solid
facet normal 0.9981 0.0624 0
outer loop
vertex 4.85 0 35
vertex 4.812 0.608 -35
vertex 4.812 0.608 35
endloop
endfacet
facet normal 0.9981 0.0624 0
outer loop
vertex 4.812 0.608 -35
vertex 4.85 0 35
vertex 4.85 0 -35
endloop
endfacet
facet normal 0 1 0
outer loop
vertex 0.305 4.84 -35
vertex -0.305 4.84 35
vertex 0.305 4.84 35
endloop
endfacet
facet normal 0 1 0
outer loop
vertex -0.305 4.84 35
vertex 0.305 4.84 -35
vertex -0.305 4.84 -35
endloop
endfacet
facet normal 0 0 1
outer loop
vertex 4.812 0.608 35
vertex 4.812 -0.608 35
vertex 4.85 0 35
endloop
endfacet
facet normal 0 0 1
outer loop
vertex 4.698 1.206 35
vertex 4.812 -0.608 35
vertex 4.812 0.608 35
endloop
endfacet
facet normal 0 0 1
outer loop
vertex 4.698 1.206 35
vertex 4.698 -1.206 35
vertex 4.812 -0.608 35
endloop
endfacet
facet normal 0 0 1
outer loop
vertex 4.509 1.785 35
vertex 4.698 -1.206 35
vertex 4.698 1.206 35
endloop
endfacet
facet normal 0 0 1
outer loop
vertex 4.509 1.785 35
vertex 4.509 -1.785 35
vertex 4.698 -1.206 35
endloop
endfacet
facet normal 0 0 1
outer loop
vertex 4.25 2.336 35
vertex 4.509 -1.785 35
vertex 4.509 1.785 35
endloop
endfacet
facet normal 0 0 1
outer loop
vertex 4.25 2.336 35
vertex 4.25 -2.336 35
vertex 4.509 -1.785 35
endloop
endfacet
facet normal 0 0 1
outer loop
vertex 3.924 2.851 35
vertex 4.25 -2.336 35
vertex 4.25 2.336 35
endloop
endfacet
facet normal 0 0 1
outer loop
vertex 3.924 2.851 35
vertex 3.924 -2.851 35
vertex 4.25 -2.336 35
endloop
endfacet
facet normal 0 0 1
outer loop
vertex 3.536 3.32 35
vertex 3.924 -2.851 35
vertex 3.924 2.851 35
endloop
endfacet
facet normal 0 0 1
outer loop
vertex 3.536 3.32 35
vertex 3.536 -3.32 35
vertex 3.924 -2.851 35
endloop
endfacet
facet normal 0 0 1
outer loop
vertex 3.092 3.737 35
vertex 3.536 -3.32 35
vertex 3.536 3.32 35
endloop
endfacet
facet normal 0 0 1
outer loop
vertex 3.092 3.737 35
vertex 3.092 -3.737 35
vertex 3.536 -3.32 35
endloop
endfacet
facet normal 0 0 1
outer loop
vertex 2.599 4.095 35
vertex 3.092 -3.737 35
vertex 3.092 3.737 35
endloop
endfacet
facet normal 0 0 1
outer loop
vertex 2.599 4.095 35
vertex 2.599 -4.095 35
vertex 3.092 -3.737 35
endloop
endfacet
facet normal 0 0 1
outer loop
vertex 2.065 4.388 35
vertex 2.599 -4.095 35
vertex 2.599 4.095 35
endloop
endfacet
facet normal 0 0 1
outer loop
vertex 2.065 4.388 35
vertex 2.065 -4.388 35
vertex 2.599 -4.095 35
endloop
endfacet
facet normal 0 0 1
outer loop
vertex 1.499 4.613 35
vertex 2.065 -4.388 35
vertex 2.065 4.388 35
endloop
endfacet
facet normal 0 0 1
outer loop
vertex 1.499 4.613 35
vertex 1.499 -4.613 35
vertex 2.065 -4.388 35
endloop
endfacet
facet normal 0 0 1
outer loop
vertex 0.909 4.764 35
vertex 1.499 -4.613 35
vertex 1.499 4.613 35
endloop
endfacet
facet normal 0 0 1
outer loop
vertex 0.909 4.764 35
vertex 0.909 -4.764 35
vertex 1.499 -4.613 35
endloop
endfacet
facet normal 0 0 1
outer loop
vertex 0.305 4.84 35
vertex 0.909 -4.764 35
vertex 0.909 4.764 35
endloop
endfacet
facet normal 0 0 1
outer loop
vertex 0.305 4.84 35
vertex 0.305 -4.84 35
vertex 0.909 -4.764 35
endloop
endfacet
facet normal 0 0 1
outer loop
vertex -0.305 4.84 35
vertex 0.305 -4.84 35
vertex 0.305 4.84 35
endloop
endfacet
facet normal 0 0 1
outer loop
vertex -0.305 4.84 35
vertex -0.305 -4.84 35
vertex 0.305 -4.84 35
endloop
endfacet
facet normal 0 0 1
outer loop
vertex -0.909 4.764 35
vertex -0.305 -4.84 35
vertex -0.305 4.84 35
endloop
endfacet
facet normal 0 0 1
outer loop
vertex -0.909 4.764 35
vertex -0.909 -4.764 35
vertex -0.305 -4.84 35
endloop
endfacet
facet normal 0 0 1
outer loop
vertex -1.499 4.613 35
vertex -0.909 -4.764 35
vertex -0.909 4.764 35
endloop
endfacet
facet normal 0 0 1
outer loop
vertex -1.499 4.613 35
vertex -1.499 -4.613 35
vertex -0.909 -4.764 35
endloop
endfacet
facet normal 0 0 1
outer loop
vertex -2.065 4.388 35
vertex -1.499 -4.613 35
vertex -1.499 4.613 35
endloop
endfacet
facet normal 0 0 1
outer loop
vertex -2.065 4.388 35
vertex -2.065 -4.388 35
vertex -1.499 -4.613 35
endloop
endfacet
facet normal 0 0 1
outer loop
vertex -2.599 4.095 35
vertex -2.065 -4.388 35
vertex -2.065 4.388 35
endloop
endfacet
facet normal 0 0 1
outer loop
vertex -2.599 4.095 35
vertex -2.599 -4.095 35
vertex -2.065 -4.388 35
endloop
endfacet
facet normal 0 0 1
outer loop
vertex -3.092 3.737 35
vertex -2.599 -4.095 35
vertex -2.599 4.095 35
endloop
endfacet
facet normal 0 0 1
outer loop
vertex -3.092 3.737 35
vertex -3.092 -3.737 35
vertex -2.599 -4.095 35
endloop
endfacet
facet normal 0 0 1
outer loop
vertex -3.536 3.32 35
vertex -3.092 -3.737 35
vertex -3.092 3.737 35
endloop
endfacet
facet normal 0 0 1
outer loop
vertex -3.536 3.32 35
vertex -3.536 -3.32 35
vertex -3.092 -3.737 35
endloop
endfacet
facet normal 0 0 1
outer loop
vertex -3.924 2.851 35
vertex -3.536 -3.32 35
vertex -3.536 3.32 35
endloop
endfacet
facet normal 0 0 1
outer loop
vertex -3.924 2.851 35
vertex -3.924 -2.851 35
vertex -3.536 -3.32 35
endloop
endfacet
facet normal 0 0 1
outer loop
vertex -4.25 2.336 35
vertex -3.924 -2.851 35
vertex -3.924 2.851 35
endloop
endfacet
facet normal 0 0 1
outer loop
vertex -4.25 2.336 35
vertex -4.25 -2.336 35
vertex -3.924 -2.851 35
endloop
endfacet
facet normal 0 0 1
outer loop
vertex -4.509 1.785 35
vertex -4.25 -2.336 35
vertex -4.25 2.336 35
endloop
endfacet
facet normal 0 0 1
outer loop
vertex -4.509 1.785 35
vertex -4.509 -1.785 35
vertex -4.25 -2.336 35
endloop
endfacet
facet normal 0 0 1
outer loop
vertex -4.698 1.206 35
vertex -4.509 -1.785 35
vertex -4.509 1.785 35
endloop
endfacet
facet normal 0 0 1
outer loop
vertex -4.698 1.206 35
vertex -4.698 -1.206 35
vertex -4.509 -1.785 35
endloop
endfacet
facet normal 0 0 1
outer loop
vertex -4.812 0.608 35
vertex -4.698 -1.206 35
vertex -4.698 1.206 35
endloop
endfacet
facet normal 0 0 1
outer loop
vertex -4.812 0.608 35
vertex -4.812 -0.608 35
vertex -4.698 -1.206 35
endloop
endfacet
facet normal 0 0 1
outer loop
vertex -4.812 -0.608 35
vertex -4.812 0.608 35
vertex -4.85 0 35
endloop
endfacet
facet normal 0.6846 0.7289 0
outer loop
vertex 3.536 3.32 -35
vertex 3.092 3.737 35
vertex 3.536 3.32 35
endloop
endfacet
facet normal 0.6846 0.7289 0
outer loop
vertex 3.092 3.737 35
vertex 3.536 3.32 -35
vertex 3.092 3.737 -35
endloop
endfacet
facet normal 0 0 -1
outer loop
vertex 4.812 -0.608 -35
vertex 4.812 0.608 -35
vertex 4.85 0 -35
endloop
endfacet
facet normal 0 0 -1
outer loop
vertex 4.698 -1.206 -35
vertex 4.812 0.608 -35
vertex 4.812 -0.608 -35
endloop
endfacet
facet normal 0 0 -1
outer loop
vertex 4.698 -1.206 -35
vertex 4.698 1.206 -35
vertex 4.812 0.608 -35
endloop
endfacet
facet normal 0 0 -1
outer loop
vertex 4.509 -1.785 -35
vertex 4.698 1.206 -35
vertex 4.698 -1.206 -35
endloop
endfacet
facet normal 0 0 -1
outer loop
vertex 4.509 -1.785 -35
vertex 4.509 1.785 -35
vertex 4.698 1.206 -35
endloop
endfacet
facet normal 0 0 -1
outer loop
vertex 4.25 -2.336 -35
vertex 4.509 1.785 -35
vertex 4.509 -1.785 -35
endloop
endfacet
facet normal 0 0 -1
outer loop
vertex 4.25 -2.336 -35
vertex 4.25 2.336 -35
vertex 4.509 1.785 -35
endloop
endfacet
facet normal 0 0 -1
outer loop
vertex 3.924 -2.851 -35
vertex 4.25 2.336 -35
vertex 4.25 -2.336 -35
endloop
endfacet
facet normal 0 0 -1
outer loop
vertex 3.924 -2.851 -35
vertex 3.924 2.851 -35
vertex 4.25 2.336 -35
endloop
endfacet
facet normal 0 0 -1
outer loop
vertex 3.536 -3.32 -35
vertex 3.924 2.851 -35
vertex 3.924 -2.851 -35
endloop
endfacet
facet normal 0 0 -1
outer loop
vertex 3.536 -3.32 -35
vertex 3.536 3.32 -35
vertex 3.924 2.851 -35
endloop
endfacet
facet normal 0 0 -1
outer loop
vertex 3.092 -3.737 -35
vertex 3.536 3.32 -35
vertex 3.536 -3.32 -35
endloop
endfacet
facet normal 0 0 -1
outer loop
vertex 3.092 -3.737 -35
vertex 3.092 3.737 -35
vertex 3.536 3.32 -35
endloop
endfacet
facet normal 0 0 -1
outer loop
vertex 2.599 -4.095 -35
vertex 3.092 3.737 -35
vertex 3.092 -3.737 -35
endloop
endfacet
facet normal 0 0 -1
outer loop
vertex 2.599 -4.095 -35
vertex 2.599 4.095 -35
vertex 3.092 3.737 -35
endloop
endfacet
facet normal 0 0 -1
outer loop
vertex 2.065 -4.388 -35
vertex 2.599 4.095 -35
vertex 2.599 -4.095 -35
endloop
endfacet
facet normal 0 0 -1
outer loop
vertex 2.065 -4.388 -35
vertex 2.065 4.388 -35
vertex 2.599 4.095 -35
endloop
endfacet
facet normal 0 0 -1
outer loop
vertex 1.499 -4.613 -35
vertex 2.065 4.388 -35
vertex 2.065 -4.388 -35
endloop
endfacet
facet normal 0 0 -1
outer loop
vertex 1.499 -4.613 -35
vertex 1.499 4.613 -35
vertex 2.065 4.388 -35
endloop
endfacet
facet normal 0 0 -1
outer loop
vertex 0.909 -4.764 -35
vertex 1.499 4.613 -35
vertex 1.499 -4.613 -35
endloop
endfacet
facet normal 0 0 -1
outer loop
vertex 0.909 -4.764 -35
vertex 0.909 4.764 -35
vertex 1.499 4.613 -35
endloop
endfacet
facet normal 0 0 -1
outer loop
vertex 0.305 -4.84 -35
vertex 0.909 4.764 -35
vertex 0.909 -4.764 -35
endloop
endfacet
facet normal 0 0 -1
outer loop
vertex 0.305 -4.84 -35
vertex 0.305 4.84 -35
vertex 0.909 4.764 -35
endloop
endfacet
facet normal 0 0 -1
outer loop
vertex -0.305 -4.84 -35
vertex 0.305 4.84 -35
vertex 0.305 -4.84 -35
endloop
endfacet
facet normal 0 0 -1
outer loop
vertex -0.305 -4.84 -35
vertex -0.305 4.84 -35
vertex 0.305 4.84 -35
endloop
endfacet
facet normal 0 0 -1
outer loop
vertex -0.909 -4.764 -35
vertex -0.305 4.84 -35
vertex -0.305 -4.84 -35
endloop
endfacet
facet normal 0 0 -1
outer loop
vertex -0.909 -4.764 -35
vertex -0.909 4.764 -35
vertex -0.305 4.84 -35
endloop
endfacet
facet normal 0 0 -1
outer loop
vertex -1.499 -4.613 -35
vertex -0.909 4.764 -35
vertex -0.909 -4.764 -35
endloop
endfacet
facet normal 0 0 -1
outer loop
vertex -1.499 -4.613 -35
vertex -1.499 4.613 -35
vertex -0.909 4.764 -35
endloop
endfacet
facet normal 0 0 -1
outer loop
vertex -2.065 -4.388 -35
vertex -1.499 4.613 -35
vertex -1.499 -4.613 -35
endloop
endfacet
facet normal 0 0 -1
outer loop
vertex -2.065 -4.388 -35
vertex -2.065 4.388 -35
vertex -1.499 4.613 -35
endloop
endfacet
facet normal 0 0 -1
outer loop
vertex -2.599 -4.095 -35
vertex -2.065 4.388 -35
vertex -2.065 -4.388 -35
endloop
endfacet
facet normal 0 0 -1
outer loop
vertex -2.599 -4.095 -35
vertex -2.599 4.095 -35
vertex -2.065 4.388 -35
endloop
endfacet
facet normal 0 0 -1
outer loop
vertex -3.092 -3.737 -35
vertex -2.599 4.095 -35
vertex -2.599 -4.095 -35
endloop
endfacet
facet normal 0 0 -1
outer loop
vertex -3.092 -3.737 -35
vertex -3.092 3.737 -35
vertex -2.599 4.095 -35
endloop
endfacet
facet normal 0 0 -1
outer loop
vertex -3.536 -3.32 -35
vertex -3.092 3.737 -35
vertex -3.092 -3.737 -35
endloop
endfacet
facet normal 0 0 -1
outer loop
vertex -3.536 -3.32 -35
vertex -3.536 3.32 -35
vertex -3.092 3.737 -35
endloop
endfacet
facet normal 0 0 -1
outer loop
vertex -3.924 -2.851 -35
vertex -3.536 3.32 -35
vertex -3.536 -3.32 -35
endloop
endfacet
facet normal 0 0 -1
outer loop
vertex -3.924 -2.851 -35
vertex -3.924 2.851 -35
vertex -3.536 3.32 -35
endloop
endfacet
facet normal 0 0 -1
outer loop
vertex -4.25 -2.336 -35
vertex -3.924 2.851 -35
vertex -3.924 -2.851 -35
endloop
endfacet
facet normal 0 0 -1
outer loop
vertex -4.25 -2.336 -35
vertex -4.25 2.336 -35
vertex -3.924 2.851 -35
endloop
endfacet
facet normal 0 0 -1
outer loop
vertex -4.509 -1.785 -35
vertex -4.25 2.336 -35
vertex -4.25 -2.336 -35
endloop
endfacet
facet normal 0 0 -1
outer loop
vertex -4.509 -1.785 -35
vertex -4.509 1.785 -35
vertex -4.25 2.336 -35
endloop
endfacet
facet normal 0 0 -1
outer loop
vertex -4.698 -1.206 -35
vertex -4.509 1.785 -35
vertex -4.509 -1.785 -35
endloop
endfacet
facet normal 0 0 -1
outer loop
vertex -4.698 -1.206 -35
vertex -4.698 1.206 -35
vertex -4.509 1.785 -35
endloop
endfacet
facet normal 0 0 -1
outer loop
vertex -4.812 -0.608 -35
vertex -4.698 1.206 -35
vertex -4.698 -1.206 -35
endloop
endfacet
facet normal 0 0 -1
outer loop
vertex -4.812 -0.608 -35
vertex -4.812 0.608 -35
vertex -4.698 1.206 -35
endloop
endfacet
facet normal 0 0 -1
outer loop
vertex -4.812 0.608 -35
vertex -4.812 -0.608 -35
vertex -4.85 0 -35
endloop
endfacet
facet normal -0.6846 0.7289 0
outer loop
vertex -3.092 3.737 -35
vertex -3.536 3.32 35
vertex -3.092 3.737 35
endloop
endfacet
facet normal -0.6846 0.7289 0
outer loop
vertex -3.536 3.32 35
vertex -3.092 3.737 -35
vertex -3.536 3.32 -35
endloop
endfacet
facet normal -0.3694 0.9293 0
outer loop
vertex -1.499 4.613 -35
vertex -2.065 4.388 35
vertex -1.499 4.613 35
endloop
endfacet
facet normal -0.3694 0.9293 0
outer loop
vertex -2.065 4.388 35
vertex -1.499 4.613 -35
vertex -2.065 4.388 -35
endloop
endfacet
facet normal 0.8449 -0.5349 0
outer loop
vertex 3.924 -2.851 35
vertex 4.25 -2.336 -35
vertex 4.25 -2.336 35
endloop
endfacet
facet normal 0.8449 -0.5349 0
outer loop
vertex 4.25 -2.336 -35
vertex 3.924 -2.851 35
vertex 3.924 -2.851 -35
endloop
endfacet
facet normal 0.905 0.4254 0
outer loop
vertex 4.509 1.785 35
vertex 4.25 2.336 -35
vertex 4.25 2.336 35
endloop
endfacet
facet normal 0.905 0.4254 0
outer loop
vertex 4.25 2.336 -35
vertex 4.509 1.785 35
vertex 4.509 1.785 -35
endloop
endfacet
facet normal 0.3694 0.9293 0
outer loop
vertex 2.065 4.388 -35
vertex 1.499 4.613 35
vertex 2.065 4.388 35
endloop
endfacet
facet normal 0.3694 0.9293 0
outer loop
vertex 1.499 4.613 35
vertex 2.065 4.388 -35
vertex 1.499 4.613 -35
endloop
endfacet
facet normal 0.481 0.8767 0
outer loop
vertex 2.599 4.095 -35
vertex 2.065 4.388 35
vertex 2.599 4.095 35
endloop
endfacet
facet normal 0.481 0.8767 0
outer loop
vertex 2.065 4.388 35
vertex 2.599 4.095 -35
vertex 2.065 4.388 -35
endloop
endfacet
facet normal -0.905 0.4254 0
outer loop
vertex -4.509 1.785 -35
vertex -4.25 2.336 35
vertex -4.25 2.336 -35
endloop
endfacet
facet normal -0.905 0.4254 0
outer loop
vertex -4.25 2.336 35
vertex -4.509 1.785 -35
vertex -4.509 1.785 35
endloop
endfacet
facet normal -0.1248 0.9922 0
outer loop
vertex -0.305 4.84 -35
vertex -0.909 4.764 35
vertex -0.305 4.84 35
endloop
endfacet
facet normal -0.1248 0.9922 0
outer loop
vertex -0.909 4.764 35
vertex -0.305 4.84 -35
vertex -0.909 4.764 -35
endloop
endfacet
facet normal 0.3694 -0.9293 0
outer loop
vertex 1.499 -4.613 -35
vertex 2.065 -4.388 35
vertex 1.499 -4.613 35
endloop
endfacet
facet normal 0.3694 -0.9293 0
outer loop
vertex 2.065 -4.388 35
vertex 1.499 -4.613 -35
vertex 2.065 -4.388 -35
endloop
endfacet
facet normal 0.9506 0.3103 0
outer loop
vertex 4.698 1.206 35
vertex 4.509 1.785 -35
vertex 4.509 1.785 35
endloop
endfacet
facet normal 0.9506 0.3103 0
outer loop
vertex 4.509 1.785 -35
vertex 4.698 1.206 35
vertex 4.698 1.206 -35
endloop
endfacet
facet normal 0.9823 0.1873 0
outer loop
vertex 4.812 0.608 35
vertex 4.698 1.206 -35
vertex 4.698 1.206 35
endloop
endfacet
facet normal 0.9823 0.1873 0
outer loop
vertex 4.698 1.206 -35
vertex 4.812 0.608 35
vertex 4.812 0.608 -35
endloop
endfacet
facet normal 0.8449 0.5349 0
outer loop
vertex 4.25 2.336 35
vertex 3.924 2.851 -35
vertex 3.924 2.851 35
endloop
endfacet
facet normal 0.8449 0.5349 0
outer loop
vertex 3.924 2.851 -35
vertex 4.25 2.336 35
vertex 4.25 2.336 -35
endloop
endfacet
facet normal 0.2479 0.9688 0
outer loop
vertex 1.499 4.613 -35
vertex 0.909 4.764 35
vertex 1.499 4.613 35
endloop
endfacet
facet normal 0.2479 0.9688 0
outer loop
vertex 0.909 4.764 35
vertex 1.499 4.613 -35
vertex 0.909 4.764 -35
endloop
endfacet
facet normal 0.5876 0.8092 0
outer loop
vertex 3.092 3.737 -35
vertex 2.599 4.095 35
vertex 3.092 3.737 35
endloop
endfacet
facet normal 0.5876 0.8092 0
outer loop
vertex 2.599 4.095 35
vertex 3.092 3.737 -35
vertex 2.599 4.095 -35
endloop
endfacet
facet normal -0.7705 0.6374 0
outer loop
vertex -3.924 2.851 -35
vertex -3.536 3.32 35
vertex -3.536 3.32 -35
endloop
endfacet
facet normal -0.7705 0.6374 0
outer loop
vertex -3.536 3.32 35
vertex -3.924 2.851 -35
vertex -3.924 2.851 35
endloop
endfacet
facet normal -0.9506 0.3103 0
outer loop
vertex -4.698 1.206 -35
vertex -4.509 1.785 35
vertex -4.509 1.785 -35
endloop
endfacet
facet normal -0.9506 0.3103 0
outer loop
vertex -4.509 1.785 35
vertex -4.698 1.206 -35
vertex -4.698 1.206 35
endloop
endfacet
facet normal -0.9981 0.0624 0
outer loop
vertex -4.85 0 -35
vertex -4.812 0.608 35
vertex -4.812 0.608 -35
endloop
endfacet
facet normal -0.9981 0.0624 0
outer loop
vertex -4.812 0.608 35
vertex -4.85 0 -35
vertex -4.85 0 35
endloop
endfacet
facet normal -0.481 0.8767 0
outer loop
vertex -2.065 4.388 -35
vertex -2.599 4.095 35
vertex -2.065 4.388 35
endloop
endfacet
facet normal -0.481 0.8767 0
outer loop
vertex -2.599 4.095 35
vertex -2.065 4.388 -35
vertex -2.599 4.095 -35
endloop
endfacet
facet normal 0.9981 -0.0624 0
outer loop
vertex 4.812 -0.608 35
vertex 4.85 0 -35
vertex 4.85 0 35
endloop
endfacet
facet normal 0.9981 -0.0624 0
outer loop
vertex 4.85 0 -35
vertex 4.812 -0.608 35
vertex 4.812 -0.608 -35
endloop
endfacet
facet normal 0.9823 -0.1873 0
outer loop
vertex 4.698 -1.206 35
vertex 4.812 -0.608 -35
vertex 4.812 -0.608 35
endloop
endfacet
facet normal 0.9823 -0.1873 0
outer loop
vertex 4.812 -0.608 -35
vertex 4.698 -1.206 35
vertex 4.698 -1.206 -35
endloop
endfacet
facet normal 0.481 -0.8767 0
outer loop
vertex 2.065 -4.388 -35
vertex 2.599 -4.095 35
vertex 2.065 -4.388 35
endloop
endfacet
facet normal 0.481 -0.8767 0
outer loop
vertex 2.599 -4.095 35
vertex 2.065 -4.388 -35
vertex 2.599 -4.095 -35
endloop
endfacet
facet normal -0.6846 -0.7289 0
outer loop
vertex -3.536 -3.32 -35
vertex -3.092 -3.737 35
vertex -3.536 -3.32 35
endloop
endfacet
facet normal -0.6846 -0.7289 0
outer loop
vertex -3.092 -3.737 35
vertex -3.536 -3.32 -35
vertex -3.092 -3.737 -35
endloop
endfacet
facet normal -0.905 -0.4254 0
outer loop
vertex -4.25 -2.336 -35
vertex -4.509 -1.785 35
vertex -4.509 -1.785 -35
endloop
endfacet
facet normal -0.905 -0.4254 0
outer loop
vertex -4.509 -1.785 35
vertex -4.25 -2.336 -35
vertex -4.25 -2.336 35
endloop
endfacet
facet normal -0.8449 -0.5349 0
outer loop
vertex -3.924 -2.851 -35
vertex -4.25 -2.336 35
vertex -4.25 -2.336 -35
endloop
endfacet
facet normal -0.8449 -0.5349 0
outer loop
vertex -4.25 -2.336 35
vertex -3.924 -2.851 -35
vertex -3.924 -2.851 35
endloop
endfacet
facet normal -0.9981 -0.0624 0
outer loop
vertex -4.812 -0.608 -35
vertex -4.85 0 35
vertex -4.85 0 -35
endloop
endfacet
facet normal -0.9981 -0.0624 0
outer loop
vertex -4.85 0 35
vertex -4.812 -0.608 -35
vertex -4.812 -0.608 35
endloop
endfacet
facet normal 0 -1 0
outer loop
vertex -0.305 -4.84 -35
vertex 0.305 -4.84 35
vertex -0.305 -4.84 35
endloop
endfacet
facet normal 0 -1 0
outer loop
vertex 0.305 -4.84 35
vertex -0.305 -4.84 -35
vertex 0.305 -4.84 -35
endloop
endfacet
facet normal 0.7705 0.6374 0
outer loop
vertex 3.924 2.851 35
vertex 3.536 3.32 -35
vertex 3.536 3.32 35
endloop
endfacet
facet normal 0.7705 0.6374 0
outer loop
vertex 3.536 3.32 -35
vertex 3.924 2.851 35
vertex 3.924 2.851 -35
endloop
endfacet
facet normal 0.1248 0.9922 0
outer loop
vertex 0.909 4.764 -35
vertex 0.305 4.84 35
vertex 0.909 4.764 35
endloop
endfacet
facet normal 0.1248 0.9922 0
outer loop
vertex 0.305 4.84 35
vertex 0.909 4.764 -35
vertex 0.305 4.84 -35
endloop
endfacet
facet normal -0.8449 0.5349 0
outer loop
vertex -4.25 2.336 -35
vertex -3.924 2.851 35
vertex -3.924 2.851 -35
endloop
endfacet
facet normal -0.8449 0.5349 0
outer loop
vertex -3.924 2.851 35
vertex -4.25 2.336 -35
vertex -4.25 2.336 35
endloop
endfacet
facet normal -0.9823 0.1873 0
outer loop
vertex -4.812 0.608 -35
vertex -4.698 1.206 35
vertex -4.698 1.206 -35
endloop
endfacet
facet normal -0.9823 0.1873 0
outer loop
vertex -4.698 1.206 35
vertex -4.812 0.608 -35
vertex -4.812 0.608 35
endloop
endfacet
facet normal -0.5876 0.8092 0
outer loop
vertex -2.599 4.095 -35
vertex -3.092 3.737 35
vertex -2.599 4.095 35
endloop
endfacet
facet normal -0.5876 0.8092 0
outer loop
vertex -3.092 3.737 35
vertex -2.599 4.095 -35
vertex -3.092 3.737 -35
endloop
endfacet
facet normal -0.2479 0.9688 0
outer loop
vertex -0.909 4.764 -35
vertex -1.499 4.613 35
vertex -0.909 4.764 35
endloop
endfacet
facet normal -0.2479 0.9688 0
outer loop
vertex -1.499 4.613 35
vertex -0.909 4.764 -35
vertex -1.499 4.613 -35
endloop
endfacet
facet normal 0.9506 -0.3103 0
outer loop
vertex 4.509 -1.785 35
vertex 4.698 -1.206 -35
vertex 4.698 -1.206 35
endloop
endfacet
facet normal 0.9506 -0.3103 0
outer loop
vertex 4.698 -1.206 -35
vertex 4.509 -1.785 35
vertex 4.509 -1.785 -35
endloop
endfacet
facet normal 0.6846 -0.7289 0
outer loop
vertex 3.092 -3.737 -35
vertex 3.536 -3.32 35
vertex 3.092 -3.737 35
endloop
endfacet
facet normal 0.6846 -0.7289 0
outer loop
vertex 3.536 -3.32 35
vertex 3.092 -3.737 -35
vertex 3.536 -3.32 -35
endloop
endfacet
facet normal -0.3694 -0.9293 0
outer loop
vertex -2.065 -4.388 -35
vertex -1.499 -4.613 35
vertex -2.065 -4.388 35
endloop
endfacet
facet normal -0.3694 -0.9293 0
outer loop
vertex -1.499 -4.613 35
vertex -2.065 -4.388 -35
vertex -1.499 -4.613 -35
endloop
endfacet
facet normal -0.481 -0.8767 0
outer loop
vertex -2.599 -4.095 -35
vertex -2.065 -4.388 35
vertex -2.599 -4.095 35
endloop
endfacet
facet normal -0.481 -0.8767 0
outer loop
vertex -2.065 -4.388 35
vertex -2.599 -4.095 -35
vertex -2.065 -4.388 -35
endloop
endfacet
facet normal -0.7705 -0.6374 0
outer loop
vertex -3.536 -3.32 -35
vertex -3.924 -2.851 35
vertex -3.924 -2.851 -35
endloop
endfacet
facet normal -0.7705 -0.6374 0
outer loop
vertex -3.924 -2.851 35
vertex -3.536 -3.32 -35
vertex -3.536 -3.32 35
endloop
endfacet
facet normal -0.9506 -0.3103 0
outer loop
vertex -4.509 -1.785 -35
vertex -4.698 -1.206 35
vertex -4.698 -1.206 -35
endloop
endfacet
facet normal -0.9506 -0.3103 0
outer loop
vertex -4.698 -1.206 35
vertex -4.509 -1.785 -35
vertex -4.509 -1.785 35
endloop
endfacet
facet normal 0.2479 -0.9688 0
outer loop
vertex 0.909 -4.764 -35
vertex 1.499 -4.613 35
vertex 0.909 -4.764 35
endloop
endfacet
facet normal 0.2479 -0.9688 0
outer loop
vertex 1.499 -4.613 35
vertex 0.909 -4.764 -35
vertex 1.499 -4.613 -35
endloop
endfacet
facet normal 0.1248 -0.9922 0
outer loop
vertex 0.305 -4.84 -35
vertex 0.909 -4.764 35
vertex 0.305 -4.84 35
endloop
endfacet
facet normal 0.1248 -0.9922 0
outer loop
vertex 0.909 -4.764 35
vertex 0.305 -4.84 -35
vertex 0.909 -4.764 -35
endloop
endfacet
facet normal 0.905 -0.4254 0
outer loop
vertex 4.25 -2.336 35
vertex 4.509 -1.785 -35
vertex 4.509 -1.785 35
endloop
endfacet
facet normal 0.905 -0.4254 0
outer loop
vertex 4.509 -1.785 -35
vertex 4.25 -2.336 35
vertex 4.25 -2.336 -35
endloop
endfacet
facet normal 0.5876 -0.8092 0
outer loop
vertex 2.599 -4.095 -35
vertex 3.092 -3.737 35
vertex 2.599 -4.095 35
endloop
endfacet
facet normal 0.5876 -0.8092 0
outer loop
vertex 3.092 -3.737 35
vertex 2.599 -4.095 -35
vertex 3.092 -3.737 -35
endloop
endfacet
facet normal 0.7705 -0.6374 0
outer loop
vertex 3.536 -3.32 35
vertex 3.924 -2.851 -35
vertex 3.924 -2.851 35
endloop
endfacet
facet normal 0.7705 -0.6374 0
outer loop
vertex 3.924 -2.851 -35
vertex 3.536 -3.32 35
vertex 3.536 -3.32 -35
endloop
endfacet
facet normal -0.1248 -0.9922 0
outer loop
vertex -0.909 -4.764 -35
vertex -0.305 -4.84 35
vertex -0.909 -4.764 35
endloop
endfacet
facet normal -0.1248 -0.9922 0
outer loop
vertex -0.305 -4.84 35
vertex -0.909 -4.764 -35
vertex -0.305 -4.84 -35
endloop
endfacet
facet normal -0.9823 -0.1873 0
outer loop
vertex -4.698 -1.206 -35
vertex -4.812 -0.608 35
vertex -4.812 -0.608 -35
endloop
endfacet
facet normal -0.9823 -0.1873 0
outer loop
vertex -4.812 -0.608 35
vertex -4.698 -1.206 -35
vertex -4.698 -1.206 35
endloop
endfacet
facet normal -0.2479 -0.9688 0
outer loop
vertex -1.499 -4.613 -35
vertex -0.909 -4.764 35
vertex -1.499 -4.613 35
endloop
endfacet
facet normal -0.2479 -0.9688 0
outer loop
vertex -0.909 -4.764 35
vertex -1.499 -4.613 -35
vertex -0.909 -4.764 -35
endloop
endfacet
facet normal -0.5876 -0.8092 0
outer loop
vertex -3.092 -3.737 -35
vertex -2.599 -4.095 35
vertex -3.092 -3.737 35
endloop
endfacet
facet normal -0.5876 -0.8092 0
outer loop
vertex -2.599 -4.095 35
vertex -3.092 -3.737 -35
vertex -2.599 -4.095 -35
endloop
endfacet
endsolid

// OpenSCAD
$fn = 50;


difference() {
	union() {
		translate(v = [0, 0, -35.0000000000]) {
			cylinder(h = 70, r = 4.8500000000);
		}
	}
	union() {
		translate(v = [0, 0, -100.0000000000]) {
			cylinder(h = 200, r = 0);
		}
	}
}
